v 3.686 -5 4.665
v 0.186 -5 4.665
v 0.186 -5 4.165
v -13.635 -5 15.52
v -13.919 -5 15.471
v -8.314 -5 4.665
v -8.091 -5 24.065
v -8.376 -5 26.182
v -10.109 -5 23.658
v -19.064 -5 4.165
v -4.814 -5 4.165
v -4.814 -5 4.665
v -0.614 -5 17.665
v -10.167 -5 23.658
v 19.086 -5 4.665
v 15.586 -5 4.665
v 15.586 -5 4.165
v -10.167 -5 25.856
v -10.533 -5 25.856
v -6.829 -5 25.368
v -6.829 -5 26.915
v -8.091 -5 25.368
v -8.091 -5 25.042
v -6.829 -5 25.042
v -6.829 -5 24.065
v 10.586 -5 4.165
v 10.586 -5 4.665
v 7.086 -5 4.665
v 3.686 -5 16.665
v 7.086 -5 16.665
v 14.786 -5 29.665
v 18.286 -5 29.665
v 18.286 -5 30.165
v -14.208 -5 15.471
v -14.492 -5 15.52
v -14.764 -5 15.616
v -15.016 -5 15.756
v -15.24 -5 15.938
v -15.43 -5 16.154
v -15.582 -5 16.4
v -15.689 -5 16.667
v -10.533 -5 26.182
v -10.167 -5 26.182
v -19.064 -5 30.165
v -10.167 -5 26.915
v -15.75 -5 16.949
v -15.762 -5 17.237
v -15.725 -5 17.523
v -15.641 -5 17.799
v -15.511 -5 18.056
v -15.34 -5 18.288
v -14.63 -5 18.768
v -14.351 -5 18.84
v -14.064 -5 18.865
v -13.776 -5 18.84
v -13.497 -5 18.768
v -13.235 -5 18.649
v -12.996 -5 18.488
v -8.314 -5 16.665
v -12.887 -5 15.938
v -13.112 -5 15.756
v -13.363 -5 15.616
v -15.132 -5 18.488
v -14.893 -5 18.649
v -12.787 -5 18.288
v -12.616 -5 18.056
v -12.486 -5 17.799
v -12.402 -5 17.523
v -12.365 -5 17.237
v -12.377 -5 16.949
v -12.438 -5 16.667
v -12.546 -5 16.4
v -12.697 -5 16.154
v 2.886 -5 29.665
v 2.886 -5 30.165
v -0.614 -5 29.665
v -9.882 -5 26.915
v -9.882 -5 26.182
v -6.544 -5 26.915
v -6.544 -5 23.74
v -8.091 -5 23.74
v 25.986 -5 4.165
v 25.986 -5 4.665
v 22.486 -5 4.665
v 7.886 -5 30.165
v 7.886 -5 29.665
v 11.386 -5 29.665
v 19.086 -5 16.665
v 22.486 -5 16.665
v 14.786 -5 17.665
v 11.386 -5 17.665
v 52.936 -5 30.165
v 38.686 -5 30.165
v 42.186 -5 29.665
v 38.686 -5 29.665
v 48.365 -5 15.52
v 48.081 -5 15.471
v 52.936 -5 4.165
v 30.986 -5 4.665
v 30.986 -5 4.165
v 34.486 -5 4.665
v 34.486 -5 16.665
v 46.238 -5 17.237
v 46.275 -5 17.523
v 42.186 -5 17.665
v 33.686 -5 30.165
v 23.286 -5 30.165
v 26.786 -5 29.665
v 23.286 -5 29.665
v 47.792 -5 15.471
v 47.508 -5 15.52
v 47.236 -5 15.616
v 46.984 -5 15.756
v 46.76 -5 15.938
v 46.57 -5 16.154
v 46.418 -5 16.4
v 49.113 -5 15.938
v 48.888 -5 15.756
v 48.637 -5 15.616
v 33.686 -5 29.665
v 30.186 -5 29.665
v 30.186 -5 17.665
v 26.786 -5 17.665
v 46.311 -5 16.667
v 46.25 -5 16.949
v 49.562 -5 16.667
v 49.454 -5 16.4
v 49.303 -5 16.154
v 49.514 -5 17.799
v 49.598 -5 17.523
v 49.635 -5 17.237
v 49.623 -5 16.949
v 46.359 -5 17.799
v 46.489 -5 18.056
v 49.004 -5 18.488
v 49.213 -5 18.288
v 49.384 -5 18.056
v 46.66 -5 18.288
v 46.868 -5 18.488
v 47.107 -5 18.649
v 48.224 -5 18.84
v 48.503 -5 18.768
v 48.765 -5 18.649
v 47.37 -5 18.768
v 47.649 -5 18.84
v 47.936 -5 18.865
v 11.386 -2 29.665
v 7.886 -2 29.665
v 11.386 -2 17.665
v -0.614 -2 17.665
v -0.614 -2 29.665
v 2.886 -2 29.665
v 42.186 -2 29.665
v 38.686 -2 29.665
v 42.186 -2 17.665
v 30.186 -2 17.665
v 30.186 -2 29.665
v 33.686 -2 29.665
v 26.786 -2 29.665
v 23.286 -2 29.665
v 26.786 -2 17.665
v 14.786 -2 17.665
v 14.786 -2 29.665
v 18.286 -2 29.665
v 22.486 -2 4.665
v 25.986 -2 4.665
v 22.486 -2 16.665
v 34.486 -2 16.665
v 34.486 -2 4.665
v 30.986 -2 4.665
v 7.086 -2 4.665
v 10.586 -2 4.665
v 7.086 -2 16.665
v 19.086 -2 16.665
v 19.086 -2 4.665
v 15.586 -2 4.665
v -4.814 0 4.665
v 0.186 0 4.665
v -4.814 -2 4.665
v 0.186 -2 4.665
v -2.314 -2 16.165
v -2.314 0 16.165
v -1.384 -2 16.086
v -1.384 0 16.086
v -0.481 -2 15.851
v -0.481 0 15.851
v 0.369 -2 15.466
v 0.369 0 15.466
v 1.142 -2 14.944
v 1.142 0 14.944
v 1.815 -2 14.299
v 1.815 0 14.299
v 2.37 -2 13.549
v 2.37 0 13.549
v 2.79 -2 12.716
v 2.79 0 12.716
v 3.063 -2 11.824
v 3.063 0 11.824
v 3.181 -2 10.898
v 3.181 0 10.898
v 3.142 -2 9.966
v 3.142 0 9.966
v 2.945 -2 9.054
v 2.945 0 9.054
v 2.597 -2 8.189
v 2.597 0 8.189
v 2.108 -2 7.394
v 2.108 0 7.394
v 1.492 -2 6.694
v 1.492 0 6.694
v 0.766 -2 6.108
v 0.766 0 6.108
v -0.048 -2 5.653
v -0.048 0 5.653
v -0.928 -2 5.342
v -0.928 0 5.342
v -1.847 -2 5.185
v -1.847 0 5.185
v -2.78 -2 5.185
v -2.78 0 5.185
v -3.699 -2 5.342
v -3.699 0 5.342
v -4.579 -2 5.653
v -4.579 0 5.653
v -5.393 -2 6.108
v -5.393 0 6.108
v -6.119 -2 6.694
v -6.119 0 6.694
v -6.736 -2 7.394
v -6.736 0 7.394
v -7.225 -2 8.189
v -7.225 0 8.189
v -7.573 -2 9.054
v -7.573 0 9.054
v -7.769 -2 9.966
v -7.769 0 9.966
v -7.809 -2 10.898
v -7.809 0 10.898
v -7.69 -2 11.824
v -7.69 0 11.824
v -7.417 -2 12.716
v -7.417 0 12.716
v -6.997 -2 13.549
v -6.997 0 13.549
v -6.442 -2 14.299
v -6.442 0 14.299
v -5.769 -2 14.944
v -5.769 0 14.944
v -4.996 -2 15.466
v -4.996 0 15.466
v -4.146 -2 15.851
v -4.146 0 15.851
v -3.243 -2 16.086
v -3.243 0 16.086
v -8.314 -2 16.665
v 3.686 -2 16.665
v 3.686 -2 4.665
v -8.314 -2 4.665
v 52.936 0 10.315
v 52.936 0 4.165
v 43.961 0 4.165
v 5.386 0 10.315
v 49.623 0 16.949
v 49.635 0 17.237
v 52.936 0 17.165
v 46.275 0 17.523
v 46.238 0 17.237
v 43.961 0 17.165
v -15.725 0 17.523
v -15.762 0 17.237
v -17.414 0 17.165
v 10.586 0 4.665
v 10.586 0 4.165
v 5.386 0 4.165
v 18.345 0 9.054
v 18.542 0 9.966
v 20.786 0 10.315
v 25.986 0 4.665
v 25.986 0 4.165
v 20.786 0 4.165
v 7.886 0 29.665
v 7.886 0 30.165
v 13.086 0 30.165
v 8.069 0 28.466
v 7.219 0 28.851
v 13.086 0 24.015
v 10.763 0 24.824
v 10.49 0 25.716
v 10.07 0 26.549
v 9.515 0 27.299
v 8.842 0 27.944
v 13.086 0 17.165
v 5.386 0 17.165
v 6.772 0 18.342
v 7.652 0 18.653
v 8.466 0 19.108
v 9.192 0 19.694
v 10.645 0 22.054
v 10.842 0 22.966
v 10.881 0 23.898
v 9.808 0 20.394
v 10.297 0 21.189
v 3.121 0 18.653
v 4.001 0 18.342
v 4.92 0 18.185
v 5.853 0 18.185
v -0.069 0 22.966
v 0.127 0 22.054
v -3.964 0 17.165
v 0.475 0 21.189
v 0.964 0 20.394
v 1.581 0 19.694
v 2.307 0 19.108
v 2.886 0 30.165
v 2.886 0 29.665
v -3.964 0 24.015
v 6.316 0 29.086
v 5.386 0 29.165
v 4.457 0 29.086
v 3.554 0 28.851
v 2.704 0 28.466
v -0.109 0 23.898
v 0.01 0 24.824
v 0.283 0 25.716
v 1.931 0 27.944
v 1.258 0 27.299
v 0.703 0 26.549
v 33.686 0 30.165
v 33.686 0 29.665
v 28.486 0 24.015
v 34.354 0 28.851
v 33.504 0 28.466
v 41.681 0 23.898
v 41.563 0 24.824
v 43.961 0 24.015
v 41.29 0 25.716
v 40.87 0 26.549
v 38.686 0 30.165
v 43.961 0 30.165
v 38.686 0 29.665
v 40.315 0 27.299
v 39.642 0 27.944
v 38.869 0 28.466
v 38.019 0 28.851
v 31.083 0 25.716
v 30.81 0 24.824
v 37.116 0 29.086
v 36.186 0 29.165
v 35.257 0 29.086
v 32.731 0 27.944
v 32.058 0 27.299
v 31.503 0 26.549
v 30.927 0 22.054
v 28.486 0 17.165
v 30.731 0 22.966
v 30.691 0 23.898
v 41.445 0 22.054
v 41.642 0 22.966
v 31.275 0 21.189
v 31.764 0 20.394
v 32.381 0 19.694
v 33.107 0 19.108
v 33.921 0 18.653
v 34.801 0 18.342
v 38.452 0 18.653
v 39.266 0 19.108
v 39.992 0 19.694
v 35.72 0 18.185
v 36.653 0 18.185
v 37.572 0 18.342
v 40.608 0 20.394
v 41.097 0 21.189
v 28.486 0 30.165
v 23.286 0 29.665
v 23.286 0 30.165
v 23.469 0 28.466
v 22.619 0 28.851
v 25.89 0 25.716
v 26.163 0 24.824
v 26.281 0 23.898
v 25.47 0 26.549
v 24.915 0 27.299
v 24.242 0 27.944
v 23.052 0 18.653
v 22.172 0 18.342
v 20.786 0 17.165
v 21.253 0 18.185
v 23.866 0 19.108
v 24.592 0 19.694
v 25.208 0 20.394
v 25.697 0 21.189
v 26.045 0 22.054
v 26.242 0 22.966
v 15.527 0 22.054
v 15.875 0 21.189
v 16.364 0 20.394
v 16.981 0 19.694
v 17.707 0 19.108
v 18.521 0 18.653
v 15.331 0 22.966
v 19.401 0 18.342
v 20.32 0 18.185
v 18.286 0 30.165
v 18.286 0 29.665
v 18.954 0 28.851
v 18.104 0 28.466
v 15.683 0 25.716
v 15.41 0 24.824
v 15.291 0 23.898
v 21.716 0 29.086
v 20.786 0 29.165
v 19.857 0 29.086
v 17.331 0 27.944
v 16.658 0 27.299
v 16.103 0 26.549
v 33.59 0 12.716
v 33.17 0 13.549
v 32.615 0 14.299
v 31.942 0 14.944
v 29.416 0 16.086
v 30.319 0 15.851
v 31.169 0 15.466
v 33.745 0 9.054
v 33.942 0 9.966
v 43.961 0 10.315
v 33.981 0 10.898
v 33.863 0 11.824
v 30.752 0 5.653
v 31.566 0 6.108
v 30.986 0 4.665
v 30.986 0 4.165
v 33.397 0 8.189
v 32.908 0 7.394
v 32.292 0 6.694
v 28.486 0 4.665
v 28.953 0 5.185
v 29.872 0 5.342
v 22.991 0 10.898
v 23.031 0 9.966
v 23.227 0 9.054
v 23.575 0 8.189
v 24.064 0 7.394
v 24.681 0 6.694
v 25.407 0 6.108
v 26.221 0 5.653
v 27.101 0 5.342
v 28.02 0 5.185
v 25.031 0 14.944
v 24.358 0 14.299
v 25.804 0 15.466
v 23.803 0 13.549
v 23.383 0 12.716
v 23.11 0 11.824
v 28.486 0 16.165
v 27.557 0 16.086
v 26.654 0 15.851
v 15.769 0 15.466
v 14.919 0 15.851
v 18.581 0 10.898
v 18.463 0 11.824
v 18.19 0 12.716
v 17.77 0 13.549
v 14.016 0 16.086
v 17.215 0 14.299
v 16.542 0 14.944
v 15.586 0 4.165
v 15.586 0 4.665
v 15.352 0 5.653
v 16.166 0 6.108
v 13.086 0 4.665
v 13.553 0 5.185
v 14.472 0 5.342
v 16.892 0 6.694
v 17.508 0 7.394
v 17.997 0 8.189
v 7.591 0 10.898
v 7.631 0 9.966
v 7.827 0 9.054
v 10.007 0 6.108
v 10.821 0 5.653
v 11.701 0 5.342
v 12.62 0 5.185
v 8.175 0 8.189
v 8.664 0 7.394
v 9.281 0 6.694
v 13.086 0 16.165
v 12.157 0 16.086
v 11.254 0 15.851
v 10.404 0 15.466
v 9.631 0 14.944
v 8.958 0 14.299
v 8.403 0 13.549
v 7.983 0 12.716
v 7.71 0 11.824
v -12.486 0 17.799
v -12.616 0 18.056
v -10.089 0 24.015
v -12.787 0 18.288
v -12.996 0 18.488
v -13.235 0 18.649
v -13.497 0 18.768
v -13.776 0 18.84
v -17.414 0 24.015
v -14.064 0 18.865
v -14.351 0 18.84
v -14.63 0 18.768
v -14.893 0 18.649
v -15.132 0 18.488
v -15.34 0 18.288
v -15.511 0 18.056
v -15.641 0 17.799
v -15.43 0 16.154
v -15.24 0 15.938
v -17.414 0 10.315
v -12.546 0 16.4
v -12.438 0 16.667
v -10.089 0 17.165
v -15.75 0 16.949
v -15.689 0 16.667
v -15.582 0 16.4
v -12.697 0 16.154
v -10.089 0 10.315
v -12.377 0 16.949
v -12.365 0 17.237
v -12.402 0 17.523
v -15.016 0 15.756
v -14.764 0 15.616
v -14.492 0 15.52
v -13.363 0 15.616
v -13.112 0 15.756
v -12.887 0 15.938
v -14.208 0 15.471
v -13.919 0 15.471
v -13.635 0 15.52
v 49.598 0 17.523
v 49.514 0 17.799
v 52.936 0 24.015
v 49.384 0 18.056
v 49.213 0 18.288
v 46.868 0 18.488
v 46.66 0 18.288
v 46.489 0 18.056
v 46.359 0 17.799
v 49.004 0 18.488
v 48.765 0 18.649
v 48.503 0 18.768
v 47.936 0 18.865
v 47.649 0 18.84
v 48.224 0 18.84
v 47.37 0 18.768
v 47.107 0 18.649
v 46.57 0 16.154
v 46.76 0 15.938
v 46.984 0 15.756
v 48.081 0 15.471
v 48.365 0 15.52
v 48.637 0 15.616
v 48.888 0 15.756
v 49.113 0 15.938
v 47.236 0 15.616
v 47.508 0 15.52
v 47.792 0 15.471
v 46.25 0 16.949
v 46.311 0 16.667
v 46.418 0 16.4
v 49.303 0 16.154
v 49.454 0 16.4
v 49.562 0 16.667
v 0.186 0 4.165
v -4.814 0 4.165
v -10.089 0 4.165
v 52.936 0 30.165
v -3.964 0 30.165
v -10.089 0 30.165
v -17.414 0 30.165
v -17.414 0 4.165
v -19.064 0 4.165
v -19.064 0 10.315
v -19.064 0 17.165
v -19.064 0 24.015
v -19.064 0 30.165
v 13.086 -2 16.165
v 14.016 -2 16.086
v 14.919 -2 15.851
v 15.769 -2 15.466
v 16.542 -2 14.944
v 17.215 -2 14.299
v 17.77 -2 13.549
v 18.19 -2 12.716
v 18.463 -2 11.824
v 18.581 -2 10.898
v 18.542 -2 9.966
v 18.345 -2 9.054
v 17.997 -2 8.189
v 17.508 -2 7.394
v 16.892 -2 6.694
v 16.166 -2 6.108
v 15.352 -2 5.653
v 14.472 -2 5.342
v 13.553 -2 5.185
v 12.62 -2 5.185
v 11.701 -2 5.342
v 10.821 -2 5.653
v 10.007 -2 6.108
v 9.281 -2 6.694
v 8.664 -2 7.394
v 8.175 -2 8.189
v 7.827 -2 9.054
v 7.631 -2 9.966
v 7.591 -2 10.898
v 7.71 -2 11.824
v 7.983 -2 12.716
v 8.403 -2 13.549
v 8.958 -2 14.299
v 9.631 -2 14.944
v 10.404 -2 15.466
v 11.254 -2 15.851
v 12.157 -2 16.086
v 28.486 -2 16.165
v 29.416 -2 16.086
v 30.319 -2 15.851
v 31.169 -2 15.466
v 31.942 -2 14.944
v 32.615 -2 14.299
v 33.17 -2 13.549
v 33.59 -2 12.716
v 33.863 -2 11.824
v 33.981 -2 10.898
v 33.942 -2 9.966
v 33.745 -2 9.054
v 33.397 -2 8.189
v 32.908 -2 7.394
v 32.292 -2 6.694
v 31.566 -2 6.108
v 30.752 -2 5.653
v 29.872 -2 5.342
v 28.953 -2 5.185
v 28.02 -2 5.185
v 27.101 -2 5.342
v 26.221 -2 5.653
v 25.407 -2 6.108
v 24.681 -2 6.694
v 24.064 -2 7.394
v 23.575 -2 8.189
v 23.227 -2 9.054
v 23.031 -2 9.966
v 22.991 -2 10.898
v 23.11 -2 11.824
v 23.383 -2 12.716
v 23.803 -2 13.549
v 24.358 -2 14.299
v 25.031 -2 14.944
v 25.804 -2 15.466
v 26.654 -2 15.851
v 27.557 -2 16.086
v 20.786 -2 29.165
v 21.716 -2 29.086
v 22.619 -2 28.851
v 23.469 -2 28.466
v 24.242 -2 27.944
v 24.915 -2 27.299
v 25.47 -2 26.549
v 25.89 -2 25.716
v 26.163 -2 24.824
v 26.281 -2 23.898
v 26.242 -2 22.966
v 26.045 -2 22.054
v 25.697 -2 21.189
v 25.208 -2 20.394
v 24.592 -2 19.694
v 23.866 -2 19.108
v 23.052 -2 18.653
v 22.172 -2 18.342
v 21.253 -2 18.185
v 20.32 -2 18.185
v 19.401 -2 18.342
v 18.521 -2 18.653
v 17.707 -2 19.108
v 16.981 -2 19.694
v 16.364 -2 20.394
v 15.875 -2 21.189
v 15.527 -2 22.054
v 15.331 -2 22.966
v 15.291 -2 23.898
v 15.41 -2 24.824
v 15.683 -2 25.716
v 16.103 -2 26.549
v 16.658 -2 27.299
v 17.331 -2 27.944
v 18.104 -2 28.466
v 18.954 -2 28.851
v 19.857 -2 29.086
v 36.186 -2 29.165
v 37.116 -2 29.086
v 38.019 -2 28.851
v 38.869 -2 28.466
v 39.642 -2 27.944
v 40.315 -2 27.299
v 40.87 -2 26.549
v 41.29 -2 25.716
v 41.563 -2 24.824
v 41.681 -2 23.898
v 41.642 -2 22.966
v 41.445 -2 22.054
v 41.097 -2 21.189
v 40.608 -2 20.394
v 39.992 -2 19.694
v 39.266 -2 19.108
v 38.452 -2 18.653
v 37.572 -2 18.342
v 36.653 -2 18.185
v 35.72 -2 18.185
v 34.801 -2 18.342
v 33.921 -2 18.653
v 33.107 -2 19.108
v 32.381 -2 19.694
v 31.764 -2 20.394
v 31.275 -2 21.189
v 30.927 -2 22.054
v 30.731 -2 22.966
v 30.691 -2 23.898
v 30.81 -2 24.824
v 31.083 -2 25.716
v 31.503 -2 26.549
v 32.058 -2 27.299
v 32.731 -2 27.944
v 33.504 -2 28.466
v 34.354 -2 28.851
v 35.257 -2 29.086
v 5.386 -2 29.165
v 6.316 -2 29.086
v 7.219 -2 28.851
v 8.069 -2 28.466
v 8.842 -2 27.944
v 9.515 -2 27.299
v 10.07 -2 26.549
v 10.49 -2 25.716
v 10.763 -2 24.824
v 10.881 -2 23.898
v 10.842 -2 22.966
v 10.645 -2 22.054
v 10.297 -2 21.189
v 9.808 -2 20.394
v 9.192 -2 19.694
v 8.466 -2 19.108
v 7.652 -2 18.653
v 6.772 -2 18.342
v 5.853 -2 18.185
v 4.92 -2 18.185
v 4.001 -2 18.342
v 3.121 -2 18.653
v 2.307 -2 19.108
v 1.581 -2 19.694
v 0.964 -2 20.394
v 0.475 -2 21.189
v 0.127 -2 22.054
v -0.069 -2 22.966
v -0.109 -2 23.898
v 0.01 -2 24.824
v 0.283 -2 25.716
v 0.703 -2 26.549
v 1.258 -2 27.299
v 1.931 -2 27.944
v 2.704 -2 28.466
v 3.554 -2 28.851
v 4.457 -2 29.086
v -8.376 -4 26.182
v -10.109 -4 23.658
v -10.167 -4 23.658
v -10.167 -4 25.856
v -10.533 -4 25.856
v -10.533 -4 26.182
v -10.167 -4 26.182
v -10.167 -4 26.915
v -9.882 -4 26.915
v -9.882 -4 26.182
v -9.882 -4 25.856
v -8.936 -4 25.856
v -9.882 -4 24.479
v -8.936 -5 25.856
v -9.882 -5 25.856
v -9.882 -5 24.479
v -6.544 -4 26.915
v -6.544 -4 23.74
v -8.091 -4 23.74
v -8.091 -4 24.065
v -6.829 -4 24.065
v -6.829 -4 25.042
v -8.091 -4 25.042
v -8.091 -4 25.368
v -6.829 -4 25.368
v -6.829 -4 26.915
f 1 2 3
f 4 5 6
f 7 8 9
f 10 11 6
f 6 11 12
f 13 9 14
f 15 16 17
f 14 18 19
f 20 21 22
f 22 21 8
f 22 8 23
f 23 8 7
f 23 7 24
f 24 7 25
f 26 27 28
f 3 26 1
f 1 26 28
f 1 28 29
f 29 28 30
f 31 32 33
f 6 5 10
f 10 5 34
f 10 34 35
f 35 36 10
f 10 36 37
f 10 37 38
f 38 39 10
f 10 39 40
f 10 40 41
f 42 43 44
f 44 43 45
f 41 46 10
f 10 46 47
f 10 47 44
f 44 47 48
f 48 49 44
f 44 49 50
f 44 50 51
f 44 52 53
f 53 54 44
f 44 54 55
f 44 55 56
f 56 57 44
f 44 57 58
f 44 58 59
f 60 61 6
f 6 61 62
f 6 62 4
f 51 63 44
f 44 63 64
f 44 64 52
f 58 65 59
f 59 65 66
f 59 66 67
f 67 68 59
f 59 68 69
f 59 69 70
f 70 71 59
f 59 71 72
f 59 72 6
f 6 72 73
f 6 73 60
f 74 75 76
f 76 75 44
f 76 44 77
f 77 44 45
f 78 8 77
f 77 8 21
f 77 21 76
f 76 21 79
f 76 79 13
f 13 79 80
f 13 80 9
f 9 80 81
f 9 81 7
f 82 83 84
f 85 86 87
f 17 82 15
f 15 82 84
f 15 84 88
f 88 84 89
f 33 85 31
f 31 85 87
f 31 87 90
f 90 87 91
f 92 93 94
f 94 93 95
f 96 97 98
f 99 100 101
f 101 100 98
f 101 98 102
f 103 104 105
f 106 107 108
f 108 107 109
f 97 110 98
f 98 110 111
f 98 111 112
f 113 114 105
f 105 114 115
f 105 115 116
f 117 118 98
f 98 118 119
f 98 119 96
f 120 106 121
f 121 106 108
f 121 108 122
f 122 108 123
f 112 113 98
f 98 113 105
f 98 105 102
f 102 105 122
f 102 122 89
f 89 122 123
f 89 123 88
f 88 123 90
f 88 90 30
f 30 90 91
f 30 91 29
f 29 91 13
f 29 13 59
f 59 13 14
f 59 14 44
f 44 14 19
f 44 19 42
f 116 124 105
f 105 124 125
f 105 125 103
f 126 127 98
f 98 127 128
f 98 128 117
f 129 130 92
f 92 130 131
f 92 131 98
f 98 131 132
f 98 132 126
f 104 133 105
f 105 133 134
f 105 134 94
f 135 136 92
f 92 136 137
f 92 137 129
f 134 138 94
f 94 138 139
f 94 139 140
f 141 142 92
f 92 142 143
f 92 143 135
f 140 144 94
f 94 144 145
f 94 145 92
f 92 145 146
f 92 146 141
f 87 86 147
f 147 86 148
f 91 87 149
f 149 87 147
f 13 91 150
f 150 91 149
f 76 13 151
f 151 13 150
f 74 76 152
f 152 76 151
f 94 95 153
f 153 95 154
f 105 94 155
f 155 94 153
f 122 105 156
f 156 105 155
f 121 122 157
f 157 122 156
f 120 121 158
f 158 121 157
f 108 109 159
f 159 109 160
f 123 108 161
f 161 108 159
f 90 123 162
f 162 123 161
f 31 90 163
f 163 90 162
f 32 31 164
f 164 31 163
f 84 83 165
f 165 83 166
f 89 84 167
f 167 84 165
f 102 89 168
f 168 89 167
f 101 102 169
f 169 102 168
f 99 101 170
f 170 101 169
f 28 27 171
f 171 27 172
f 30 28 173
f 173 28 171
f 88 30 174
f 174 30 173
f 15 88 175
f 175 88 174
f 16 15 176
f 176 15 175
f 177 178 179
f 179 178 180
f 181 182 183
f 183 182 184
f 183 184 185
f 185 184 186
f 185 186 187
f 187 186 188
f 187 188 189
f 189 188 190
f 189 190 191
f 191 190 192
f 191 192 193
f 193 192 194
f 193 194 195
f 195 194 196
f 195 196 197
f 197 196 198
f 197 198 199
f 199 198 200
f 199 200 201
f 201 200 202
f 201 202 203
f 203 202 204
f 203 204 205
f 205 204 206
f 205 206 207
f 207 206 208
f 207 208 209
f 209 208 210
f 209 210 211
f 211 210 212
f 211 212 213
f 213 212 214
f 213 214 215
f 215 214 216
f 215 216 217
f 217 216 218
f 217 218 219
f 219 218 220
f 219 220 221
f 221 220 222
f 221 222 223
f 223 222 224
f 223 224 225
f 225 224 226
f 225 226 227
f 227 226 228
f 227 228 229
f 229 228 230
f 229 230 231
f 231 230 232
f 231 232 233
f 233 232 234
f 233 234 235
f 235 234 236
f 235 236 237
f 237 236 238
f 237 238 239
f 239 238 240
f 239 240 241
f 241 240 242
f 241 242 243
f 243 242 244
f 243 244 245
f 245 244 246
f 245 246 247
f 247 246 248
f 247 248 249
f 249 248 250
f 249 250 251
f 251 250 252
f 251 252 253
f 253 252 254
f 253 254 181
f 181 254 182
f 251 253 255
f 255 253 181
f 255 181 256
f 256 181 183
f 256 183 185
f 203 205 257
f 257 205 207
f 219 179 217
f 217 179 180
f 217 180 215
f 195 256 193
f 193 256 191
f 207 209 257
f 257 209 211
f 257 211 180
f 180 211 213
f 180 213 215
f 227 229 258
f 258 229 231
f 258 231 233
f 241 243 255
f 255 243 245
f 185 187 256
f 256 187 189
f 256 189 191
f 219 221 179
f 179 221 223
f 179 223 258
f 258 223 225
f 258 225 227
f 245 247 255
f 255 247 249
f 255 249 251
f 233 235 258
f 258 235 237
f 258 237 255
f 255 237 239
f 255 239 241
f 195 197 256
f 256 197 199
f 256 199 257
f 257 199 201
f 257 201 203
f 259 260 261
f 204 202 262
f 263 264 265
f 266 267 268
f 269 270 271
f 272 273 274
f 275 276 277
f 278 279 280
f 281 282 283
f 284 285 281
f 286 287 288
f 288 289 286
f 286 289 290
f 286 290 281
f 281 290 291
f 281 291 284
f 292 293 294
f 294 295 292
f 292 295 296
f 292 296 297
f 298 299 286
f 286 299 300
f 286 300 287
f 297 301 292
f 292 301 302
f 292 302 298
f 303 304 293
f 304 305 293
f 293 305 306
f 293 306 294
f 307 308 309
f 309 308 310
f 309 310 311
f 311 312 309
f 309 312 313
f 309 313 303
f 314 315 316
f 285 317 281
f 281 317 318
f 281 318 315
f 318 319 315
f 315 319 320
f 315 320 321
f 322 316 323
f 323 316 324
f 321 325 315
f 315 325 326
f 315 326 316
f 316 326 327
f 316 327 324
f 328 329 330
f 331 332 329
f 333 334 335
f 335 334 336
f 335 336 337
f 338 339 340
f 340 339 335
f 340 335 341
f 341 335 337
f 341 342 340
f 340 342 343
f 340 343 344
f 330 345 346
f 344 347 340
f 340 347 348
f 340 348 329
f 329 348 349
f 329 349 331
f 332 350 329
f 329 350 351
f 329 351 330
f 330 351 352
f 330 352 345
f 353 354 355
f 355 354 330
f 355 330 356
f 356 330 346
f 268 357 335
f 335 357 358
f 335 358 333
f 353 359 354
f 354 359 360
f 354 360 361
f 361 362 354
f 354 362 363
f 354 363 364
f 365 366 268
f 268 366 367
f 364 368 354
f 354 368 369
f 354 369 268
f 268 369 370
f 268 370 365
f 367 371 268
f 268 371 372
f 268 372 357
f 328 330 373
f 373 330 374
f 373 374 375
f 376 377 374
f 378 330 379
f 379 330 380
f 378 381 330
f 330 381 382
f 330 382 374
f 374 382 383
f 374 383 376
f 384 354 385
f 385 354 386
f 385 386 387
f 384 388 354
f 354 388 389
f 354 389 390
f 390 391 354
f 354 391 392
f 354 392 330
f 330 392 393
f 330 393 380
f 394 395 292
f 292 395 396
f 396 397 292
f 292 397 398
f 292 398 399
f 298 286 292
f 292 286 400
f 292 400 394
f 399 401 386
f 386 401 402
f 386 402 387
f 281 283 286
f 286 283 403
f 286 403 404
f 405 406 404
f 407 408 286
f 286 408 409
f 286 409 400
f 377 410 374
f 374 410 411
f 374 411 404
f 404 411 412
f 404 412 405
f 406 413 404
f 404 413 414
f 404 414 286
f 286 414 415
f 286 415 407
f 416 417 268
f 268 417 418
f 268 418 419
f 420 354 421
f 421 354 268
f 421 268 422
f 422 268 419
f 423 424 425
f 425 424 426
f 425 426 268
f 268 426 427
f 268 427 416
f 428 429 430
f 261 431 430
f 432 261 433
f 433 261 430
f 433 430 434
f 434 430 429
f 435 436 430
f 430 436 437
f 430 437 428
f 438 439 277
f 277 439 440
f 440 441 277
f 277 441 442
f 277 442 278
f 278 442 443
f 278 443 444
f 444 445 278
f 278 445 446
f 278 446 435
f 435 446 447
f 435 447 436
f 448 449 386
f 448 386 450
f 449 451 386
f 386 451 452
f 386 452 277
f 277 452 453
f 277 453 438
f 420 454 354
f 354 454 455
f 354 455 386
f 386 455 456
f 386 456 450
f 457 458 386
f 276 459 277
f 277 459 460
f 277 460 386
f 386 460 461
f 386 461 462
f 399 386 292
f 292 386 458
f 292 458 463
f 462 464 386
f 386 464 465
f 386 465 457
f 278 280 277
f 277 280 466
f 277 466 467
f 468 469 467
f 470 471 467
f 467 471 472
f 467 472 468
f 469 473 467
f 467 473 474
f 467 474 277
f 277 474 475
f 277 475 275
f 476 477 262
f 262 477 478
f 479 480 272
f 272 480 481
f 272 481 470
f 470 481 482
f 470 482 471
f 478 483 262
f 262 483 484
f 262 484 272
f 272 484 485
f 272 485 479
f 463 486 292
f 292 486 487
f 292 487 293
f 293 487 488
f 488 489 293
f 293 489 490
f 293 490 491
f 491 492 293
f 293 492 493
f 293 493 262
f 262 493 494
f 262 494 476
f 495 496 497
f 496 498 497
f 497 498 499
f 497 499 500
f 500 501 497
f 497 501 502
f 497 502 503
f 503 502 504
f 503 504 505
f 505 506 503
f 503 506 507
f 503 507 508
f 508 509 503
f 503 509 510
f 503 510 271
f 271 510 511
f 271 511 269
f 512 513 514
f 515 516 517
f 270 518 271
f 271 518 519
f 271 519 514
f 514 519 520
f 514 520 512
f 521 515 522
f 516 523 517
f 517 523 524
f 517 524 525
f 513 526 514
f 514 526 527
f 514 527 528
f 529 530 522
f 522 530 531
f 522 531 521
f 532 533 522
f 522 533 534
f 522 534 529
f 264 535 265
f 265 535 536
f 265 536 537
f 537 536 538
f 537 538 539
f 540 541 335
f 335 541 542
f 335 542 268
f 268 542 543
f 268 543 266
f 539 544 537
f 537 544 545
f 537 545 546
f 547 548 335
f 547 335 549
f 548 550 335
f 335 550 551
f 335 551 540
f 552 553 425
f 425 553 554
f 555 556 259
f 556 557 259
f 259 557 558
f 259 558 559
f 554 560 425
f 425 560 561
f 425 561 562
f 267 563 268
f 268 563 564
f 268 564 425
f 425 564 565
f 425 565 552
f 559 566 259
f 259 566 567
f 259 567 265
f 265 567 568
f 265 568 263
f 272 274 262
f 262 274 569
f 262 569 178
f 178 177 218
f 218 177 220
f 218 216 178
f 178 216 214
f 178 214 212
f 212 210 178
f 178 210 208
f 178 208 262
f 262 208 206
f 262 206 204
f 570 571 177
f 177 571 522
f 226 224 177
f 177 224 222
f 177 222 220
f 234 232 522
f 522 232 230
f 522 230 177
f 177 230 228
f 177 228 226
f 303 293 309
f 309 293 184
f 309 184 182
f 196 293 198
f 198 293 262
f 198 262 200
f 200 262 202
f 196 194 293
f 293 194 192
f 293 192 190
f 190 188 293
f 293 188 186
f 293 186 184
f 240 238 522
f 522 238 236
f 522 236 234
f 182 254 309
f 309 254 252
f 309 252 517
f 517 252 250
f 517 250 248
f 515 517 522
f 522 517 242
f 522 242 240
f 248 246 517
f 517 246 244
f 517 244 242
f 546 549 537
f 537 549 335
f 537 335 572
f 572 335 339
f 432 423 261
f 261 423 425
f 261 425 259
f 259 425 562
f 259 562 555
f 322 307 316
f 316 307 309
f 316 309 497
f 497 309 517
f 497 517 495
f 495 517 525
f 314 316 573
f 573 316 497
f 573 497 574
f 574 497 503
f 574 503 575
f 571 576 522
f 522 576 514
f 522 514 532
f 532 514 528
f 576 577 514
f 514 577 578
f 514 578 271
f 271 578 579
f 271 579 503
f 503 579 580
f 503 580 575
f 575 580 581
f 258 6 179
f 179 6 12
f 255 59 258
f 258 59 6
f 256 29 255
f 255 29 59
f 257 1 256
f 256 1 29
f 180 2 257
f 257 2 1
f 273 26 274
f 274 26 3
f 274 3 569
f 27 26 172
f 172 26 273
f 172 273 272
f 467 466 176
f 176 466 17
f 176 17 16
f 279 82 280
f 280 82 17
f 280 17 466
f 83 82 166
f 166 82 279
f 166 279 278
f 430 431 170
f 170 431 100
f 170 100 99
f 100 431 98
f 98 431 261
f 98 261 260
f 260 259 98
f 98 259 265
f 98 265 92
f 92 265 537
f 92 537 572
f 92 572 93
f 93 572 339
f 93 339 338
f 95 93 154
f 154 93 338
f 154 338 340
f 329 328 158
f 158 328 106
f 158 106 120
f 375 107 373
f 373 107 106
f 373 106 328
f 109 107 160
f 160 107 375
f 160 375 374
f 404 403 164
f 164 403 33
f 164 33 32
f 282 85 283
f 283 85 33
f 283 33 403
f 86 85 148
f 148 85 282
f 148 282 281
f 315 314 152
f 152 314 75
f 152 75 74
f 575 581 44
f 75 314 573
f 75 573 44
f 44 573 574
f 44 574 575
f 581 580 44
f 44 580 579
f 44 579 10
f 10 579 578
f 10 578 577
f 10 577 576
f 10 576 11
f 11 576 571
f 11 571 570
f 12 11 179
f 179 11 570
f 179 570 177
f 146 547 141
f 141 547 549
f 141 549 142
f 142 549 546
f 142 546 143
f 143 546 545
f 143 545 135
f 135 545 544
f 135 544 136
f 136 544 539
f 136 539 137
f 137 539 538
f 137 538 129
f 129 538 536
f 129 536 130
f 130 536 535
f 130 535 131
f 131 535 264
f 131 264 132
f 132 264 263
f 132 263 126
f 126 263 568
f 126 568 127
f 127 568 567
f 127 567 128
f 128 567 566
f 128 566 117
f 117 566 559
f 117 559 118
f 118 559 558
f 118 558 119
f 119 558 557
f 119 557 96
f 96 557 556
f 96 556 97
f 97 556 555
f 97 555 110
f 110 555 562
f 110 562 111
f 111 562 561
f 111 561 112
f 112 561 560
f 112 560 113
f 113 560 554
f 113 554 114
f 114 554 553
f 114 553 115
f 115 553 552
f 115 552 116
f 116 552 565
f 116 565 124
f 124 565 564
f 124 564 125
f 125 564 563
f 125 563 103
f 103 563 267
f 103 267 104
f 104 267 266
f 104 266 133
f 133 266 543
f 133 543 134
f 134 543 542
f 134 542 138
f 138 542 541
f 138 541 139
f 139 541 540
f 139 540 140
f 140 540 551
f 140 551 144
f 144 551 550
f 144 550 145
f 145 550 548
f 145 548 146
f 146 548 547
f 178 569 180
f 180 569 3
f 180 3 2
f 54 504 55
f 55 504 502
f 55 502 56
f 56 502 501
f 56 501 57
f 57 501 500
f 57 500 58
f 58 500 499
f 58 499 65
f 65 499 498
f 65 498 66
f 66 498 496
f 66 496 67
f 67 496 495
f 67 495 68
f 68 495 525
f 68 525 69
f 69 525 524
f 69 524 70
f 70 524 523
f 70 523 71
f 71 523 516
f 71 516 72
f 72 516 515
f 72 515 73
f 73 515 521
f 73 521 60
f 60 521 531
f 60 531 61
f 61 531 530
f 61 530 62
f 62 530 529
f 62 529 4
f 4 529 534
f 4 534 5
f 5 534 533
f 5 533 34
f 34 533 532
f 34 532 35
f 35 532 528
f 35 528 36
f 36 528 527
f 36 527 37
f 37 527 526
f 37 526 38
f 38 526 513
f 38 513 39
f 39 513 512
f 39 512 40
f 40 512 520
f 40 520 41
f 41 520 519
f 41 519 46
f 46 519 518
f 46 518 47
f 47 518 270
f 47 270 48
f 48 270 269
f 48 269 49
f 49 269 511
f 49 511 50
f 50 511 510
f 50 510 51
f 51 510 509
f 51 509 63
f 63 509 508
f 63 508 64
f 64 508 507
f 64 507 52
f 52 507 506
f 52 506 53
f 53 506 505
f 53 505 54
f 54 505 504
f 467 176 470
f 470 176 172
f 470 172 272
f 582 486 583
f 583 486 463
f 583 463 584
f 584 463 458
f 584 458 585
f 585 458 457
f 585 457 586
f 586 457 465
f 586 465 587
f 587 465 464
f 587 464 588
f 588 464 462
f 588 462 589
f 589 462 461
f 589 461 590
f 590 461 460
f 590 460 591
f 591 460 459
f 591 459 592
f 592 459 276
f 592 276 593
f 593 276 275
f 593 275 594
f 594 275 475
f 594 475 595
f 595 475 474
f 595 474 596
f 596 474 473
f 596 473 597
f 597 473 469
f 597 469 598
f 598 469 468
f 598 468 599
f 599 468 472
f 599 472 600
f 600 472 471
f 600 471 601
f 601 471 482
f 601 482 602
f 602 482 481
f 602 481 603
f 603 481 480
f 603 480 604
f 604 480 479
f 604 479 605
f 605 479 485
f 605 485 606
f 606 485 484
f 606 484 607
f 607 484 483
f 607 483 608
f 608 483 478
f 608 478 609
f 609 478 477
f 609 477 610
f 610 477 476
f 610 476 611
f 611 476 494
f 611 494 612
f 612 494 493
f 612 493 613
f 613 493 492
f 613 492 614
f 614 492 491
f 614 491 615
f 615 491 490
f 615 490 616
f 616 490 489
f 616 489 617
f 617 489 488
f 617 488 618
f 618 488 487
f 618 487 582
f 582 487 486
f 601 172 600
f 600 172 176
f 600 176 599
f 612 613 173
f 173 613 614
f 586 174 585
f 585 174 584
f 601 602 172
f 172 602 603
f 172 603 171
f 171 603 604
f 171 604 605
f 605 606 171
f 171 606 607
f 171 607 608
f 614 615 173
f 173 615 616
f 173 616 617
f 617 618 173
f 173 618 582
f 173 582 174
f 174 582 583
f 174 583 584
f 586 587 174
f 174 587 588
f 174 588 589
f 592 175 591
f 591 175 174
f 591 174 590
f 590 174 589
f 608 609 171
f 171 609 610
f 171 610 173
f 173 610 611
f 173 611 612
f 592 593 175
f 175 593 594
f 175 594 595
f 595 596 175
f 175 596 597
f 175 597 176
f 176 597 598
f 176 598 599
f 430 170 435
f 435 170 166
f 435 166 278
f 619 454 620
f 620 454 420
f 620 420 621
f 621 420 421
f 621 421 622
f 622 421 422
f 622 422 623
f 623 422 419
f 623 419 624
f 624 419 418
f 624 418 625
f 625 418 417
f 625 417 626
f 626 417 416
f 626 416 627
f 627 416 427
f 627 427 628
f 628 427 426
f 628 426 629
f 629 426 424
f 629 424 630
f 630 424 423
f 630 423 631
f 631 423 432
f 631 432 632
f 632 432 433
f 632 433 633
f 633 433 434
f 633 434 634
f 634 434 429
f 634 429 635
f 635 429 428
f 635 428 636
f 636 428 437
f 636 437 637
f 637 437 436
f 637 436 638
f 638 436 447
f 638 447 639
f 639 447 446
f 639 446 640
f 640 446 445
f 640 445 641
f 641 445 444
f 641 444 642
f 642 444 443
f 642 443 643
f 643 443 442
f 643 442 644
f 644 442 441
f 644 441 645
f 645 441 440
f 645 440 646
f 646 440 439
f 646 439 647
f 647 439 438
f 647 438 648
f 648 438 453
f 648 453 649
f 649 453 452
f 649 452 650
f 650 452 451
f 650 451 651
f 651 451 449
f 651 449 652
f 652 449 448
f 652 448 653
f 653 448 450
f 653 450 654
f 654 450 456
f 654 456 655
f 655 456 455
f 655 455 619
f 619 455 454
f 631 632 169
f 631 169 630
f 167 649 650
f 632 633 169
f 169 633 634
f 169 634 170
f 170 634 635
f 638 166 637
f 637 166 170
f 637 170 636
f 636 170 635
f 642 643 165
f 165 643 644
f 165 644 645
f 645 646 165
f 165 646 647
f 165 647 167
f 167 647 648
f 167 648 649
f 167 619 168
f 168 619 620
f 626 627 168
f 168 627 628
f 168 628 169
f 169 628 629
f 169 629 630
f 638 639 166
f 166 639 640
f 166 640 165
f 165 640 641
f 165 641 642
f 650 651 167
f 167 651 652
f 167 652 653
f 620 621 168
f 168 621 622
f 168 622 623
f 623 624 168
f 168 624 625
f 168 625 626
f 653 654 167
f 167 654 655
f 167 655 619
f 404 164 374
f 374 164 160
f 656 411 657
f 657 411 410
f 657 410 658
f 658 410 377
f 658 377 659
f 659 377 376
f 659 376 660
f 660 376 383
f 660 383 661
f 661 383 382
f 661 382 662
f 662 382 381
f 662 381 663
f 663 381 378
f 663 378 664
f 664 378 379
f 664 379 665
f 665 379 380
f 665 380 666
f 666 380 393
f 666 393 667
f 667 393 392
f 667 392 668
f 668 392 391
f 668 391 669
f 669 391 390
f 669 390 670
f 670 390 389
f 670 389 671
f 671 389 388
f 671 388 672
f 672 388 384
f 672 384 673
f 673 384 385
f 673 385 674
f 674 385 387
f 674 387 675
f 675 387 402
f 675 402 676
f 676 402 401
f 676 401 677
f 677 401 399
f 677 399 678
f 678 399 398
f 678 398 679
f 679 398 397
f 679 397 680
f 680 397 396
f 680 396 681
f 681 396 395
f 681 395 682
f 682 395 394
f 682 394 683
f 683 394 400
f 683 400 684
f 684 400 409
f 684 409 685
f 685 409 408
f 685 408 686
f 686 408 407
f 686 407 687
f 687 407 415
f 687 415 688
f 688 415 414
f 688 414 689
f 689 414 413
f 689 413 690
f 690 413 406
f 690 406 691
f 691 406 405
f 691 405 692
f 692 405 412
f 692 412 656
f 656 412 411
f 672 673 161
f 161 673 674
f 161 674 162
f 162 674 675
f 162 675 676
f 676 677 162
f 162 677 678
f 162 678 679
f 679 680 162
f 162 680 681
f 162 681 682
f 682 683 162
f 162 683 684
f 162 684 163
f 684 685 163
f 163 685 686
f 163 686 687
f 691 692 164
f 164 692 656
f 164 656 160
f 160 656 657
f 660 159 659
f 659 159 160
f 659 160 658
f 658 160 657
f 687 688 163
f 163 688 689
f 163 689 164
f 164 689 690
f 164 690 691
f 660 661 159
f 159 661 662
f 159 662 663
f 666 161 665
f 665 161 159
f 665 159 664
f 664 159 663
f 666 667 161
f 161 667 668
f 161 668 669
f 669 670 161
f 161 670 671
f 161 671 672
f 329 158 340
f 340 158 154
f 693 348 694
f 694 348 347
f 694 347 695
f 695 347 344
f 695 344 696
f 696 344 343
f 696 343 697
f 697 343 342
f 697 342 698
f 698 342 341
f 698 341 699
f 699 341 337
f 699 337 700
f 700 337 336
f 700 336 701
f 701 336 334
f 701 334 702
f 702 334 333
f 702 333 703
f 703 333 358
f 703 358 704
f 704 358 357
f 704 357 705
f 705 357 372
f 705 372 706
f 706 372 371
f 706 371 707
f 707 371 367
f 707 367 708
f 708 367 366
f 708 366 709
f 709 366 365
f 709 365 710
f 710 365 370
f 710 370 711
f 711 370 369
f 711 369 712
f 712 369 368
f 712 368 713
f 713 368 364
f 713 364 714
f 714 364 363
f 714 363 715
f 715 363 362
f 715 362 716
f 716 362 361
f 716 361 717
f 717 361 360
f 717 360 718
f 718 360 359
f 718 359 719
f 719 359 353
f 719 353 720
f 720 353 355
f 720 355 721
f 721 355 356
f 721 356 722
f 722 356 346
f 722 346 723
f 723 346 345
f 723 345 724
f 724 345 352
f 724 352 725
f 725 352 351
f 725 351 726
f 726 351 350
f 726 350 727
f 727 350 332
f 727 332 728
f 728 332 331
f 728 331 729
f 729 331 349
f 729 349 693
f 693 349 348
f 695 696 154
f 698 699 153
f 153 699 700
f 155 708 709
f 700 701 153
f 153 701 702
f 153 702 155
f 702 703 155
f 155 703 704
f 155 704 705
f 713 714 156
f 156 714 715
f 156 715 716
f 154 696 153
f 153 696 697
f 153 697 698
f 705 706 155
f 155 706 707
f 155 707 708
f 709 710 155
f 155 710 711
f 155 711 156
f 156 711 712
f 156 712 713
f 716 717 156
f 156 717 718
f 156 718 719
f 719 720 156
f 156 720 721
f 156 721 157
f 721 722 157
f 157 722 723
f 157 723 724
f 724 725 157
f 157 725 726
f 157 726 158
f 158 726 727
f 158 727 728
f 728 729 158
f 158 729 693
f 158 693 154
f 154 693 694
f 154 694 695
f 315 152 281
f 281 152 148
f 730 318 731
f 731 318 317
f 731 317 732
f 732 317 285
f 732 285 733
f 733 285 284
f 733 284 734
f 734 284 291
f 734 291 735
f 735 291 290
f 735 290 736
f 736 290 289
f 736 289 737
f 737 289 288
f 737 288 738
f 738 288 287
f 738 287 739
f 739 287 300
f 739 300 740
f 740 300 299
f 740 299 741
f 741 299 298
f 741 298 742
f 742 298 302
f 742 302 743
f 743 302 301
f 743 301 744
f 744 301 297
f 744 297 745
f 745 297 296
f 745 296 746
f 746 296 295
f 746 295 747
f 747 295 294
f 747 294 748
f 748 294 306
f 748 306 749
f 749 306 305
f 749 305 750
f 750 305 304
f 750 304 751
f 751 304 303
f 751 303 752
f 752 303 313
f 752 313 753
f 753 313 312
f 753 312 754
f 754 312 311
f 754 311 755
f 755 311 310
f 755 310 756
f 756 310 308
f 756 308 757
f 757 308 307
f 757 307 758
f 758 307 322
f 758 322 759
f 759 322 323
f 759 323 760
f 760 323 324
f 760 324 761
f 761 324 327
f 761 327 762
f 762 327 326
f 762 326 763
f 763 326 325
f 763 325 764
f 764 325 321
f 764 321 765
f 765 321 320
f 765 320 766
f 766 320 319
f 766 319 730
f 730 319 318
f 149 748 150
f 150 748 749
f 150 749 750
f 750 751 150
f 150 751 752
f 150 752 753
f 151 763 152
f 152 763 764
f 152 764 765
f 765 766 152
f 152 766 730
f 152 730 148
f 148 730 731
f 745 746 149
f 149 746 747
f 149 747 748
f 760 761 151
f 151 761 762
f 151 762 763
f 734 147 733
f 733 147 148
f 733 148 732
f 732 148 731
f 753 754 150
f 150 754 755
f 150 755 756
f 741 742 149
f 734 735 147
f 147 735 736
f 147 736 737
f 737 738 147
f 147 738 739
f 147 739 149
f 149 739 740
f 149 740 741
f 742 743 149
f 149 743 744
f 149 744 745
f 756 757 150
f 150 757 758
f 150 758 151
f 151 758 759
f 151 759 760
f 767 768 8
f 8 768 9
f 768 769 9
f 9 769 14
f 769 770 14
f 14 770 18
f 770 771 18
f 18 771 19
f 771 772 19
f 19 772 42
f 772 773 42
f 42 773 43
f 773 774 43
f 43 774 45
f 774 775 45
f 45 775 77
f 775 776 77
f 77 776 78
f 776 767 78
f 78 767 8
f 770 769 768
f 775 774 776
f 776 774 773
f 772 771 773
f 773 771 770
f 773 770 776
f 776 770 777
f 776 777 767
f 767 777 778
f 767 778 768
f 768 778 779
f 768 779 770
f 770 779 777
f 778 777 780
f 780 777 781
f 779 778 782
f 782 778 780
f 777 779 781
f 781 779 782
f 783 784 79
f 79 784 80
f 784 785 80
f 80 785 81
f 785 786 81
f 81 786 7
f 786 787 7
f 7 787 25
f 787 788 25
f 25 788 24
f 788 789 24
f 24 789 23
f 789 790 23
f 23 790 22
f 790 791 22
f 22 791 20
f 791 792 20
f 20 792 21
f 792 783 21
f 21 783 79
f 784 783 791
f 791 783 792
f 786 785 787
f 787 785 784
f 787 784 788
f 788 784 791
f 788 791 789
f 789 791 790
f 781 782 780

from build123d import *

# Parameters (mm, degrees)
SKETCH1_R               = 5.5
BOSS_EXTRUDE1_DEPTH     = 2
BOSS_EXTRUDE1_2_DEPTH   = 2
BOSS_EXTRUDE1_3_DEPTH   = 2
BOSS_EXTRUDE1_4_DEPTH   = 2
BOSS_EXTRUDE1_5_DEPTH   = 2
BOSS_EXTRUDE1_6_DEPTH   = 2
BOSS_EXTRUDE2_START     = -5
BOSS_EXTRUDE2_OUTLINE_R = 1.7
BOSS_EXTRUDE2_DEPTH     = 5
CUT_EXTRUDE1_DEPTH      = 1


# Read off the part's stored shape, not the designer's step: Boss-Extrude2
with BuildPart() as part:
    # Sketch1 → Boss-Extrude1 (new body)
    with BuildSketch(Plane(origin=(0, 0, 0), x_dir=(1, 0, 0), z_dir=(0, 1, 0))):
        Polygon((3.686387934, -16.664883738), (3.686388262, -4.664883738), (-8.313611738, -4.66488341), (-8.313612066, -16.66488341), align=None)
        with Locations(Location((-2.313611902, -10.664883574, 0), (0, 0, 270))):
            Circle(SKETCH1_R, mode=Mode.SUBTRACT)
    extrude(amount=-BOSS_EXTRUDE1_DEPTH)



with BuildPart() as body_2:
    # Sketch1 → Boss-Extrude1 2 (new body)
    with BuildSketch(Plane(origin=(0, 0, 0), x_dir=(1, 0, 0), z_dir=(0, 1, 0))):
        Polygon((19.086387939, -16.664884095), (19.086388267, -4.664884095), (7.086388267, -4.664883767), (7.086387939, -16.664883767), align=None)
        with Locations(Location((13.086388103, -10.664883931, 0), (0, 0, 270))):
            Circle(SKETCH1_R, mode=Mode.SUBTRACT)
    extrude(amount=-BOSS_EXTRUDE1_2_DEPTH)


with BuildPart() as body_3:
    # Sketch1 → Boss-Extrude1 3 (new body)
    with BuildSketch(Plane(origin=(0, 0, 0), x_dir=(1, 0, 0), z_dir=(0, 1, 0))):
        Polygon((34.486387949, -16.66488445), (34.486388277, -4.66488445), (22.486388277, -4.664884122), (22.486387949, -16.664884122), align=None)
        with Locations(Location((28.486388113, -10.664884286, 0), (0, 0, 270))):
            Circle(SKETCH1_R, mode=Mode.SUBTRACT)
    extrude(amount=-BOSS_EXTRUDE1_3_DEPTH)


with BuildPart() as body_4:
    # Sketch1 → Boss-Extrude1 4 (new body)
    with BuildSketch(Plane(origin=(0, 0, 0), x_dir=(1, 0, 0), z_dir=(0, 1, 0))):
        Polygon((14.786387887, -17.664883977), (14.786387559, -29.664883977), (26.786387559, -29.664884305), (26.786387887, -17.664884305), align=None)
        with Locations(Location((20.786387723, -23.664884141, 0), (0, 0, 270))):
            Circle(SKETCH1_R, mode=Mode.SUBTRACT)
    extrude(amount=-BOSS_EXTRUDE1_4_DEPTH)


with BuildPart() as body_5:
    # Sketch1 → Boss-Extrude1 5 (new body)
    with BuildSketch(Plane(origin=(0, 0, 0), x_dir=(1, 0, 0), z_dir=(0, 1, 0))):
        Polygon((30.186386338, -17.664884333), (30.18638601, -29.664884333), (42.18638601, -29.664884661), (42.186386338, -17.664884661), align=None)
        with Locations(Location((36.186386174, -23.664884497, 0), (0, 0, 270))):
            Circle(SKETCH1_R, mode=Mode.SUBTRACT)
    extrude(amount=-BOSS_EXTRUDE1_5_DEPTH)


with BuildPart() as body_6:
    # Sketch1 → Boss-Extrude1 6 (new body)
    with BuildSketch(Plane(origin=(0, 0, 0), x_dir=(1, 0, 0), z_dir=(0, 1, 0))):
        Polygon((-0.613612103, -17.664883618), (-0.613612431, -29.664883618), (11.386387569, -29.664883947), (11.386387897, -17.664883947), align=None)
        with Locations(Location((5.386387733, -23.664883782, 0), (0, 0, 270))):
            Circle(SKETCH1_R, mode=Mode.SUBTRACT)
    extrude(amount=-BOSS_EXTRUDE1_6_DEPTH)


with BuildPart() as part_1:
    add(part.part)

    add(body_2.part)  # Boss-Extrude2 merges body 2

    add(body_3.part)  # Boss-Extrude2 merges body 3

    add(body_4.part)  # Boss-Extrude2 merges body 4

    add(body_5.part)  # Boss-Extrude2 merges body 5

    add(body_6.part)  # Boss-Extrude2 merges body 6
    # Boss-Extrude2 outline → Boss-Extrude2 (add)
    with BuildSketch(Plane(origin=(0, 0, 0), x_dir=(1, 0, 0), z_dir=(0, 1, 0)).offset(BOSS_EXTRUDE2_START)):
        Polygon((11.386387569, -29.664883947), (7.886387562, -29.664883851), (7.886387555, -30.164883851), (18.286387545, -30.164884073), (18.286387559, -29.664884073), (14.786387559, -29.664883977), (14.786387887, -17.664883977), (26.786387887, -17.664884305), (26.786387559, -29.664884305), (23.286387552, -29.66488421), (23.286387545, -30.16488421), (33.686385997, -30.164884494), (33.68638601, -29.664884428), (30.18638601, -29.664884333), (30.186386338, -17.664884333), (42.186386338, -17.664884661), (42.18638601, -29.664884661), (38.686386004, -29.664884565), (38.686385997, -30.164884565), (52.936387554, -30.164884954), (52.936388265, -4.164885084), (30.986388291, -4.164884354), (30.986388277, -4.664884354), (34.486388277, -4.66488445), (34.486387949, -16.66488445), (22.486387949, -16.664884122), (22.486388277, -4.664884122), (25.986388284, -4.664884218), (25.986388291, -4.164884218), (15.586388281, -4.164884108), (15.586388267, -4.664883999), (19.086388267, -4.664884095), (19.086387939, -16.664884095), (7.086387939, -16.664883767), (7.086388267, -4.664883767), (10.586388274, -4.664883862), (10.586388281, -4.164883862), (0.186388276, -4.164883578), (0.186388262, -4.664883642), (3.686388262, -4.664883738), (3.686387934, -16.664883738), (-8.313612066, -16.66488341), (-8.313611738, -4.66488341), (-4.813611731, -4.664883505), (-4.813611724, -4.164883505), (-19.063611735, -4.164883116), (-19.063612446, -30.164883114), (2.886387555, -30.164883714), (2.886387569, -29.664883714), (-0.613612431, -29.664883618), (-0.613612103, -17.664883618), (11.386387897, -17.664883947), align=None)
        with Locations((47.93638791, -17.164884883)):
            Circle(BOSS_EXTRUDE2_OUTLINE_R, mode=Mode.SUBTRACT)
        with Locations((-14.06361209, -17.164883252)):
            Circle(BOSS_EXTRUDE2_OUTLINE_R, mode=Mode.SUBTRACT)
    extrude(amount=BOSS_EXTRUDE2_DEPTH)

    # Sketch2 → Cut-Extrude1 (cut)
    # profile 1 of 2: a face of its own
    with BuildSketch(Plane(origin=(0, -5, 0), x_dir=(-1, 0, 0), z_dir=(0, -1, 0))):
        Polygon((6.544081332, -23.739762668), (8.090876204, -23.739762668), (8.090876204, -24.065403693), (6.829017229, -24.065403693), (6.829017229, -25.04232677), (8.090876204, -25.04232677), (8.090876204, -25.367967796), (6.829017229, -25.367967796), (6.829017229, -26.914762668), (6.544081332, -26.914762668), align=None)
    # profile 2 of 2: a face of its own
    with BuildSketch(Plane(origin=(0, -5, 0), x_dir=(-1, 0, 0), z_dir=(0, -1, 0))):
        Polygon((10.108960138, -23.658352411), (10.166837742, -23.658352411), (10.166837742, -25.856429335), (10.533183896, -25.856429335), (10.533183896, -26.18207036), (10.166837742, -26.18207036), (10.166837742, -26.914762668), (9.881901845, -26.914762668), (9.881901845, -26.18207036), (8.375812101, -26.18207036), align=None)
        Polygon((9.881901845, -25.856429335), (9.881901845, -24.478815152), (8.936143631, -25.856429335), align=None, mode=Mode.SUBTRACT)
    extrude(amount=-CUT_EXTRUDE1_DEPTH, mode=Mode.SUBTRACT)


solid = part_1.part
